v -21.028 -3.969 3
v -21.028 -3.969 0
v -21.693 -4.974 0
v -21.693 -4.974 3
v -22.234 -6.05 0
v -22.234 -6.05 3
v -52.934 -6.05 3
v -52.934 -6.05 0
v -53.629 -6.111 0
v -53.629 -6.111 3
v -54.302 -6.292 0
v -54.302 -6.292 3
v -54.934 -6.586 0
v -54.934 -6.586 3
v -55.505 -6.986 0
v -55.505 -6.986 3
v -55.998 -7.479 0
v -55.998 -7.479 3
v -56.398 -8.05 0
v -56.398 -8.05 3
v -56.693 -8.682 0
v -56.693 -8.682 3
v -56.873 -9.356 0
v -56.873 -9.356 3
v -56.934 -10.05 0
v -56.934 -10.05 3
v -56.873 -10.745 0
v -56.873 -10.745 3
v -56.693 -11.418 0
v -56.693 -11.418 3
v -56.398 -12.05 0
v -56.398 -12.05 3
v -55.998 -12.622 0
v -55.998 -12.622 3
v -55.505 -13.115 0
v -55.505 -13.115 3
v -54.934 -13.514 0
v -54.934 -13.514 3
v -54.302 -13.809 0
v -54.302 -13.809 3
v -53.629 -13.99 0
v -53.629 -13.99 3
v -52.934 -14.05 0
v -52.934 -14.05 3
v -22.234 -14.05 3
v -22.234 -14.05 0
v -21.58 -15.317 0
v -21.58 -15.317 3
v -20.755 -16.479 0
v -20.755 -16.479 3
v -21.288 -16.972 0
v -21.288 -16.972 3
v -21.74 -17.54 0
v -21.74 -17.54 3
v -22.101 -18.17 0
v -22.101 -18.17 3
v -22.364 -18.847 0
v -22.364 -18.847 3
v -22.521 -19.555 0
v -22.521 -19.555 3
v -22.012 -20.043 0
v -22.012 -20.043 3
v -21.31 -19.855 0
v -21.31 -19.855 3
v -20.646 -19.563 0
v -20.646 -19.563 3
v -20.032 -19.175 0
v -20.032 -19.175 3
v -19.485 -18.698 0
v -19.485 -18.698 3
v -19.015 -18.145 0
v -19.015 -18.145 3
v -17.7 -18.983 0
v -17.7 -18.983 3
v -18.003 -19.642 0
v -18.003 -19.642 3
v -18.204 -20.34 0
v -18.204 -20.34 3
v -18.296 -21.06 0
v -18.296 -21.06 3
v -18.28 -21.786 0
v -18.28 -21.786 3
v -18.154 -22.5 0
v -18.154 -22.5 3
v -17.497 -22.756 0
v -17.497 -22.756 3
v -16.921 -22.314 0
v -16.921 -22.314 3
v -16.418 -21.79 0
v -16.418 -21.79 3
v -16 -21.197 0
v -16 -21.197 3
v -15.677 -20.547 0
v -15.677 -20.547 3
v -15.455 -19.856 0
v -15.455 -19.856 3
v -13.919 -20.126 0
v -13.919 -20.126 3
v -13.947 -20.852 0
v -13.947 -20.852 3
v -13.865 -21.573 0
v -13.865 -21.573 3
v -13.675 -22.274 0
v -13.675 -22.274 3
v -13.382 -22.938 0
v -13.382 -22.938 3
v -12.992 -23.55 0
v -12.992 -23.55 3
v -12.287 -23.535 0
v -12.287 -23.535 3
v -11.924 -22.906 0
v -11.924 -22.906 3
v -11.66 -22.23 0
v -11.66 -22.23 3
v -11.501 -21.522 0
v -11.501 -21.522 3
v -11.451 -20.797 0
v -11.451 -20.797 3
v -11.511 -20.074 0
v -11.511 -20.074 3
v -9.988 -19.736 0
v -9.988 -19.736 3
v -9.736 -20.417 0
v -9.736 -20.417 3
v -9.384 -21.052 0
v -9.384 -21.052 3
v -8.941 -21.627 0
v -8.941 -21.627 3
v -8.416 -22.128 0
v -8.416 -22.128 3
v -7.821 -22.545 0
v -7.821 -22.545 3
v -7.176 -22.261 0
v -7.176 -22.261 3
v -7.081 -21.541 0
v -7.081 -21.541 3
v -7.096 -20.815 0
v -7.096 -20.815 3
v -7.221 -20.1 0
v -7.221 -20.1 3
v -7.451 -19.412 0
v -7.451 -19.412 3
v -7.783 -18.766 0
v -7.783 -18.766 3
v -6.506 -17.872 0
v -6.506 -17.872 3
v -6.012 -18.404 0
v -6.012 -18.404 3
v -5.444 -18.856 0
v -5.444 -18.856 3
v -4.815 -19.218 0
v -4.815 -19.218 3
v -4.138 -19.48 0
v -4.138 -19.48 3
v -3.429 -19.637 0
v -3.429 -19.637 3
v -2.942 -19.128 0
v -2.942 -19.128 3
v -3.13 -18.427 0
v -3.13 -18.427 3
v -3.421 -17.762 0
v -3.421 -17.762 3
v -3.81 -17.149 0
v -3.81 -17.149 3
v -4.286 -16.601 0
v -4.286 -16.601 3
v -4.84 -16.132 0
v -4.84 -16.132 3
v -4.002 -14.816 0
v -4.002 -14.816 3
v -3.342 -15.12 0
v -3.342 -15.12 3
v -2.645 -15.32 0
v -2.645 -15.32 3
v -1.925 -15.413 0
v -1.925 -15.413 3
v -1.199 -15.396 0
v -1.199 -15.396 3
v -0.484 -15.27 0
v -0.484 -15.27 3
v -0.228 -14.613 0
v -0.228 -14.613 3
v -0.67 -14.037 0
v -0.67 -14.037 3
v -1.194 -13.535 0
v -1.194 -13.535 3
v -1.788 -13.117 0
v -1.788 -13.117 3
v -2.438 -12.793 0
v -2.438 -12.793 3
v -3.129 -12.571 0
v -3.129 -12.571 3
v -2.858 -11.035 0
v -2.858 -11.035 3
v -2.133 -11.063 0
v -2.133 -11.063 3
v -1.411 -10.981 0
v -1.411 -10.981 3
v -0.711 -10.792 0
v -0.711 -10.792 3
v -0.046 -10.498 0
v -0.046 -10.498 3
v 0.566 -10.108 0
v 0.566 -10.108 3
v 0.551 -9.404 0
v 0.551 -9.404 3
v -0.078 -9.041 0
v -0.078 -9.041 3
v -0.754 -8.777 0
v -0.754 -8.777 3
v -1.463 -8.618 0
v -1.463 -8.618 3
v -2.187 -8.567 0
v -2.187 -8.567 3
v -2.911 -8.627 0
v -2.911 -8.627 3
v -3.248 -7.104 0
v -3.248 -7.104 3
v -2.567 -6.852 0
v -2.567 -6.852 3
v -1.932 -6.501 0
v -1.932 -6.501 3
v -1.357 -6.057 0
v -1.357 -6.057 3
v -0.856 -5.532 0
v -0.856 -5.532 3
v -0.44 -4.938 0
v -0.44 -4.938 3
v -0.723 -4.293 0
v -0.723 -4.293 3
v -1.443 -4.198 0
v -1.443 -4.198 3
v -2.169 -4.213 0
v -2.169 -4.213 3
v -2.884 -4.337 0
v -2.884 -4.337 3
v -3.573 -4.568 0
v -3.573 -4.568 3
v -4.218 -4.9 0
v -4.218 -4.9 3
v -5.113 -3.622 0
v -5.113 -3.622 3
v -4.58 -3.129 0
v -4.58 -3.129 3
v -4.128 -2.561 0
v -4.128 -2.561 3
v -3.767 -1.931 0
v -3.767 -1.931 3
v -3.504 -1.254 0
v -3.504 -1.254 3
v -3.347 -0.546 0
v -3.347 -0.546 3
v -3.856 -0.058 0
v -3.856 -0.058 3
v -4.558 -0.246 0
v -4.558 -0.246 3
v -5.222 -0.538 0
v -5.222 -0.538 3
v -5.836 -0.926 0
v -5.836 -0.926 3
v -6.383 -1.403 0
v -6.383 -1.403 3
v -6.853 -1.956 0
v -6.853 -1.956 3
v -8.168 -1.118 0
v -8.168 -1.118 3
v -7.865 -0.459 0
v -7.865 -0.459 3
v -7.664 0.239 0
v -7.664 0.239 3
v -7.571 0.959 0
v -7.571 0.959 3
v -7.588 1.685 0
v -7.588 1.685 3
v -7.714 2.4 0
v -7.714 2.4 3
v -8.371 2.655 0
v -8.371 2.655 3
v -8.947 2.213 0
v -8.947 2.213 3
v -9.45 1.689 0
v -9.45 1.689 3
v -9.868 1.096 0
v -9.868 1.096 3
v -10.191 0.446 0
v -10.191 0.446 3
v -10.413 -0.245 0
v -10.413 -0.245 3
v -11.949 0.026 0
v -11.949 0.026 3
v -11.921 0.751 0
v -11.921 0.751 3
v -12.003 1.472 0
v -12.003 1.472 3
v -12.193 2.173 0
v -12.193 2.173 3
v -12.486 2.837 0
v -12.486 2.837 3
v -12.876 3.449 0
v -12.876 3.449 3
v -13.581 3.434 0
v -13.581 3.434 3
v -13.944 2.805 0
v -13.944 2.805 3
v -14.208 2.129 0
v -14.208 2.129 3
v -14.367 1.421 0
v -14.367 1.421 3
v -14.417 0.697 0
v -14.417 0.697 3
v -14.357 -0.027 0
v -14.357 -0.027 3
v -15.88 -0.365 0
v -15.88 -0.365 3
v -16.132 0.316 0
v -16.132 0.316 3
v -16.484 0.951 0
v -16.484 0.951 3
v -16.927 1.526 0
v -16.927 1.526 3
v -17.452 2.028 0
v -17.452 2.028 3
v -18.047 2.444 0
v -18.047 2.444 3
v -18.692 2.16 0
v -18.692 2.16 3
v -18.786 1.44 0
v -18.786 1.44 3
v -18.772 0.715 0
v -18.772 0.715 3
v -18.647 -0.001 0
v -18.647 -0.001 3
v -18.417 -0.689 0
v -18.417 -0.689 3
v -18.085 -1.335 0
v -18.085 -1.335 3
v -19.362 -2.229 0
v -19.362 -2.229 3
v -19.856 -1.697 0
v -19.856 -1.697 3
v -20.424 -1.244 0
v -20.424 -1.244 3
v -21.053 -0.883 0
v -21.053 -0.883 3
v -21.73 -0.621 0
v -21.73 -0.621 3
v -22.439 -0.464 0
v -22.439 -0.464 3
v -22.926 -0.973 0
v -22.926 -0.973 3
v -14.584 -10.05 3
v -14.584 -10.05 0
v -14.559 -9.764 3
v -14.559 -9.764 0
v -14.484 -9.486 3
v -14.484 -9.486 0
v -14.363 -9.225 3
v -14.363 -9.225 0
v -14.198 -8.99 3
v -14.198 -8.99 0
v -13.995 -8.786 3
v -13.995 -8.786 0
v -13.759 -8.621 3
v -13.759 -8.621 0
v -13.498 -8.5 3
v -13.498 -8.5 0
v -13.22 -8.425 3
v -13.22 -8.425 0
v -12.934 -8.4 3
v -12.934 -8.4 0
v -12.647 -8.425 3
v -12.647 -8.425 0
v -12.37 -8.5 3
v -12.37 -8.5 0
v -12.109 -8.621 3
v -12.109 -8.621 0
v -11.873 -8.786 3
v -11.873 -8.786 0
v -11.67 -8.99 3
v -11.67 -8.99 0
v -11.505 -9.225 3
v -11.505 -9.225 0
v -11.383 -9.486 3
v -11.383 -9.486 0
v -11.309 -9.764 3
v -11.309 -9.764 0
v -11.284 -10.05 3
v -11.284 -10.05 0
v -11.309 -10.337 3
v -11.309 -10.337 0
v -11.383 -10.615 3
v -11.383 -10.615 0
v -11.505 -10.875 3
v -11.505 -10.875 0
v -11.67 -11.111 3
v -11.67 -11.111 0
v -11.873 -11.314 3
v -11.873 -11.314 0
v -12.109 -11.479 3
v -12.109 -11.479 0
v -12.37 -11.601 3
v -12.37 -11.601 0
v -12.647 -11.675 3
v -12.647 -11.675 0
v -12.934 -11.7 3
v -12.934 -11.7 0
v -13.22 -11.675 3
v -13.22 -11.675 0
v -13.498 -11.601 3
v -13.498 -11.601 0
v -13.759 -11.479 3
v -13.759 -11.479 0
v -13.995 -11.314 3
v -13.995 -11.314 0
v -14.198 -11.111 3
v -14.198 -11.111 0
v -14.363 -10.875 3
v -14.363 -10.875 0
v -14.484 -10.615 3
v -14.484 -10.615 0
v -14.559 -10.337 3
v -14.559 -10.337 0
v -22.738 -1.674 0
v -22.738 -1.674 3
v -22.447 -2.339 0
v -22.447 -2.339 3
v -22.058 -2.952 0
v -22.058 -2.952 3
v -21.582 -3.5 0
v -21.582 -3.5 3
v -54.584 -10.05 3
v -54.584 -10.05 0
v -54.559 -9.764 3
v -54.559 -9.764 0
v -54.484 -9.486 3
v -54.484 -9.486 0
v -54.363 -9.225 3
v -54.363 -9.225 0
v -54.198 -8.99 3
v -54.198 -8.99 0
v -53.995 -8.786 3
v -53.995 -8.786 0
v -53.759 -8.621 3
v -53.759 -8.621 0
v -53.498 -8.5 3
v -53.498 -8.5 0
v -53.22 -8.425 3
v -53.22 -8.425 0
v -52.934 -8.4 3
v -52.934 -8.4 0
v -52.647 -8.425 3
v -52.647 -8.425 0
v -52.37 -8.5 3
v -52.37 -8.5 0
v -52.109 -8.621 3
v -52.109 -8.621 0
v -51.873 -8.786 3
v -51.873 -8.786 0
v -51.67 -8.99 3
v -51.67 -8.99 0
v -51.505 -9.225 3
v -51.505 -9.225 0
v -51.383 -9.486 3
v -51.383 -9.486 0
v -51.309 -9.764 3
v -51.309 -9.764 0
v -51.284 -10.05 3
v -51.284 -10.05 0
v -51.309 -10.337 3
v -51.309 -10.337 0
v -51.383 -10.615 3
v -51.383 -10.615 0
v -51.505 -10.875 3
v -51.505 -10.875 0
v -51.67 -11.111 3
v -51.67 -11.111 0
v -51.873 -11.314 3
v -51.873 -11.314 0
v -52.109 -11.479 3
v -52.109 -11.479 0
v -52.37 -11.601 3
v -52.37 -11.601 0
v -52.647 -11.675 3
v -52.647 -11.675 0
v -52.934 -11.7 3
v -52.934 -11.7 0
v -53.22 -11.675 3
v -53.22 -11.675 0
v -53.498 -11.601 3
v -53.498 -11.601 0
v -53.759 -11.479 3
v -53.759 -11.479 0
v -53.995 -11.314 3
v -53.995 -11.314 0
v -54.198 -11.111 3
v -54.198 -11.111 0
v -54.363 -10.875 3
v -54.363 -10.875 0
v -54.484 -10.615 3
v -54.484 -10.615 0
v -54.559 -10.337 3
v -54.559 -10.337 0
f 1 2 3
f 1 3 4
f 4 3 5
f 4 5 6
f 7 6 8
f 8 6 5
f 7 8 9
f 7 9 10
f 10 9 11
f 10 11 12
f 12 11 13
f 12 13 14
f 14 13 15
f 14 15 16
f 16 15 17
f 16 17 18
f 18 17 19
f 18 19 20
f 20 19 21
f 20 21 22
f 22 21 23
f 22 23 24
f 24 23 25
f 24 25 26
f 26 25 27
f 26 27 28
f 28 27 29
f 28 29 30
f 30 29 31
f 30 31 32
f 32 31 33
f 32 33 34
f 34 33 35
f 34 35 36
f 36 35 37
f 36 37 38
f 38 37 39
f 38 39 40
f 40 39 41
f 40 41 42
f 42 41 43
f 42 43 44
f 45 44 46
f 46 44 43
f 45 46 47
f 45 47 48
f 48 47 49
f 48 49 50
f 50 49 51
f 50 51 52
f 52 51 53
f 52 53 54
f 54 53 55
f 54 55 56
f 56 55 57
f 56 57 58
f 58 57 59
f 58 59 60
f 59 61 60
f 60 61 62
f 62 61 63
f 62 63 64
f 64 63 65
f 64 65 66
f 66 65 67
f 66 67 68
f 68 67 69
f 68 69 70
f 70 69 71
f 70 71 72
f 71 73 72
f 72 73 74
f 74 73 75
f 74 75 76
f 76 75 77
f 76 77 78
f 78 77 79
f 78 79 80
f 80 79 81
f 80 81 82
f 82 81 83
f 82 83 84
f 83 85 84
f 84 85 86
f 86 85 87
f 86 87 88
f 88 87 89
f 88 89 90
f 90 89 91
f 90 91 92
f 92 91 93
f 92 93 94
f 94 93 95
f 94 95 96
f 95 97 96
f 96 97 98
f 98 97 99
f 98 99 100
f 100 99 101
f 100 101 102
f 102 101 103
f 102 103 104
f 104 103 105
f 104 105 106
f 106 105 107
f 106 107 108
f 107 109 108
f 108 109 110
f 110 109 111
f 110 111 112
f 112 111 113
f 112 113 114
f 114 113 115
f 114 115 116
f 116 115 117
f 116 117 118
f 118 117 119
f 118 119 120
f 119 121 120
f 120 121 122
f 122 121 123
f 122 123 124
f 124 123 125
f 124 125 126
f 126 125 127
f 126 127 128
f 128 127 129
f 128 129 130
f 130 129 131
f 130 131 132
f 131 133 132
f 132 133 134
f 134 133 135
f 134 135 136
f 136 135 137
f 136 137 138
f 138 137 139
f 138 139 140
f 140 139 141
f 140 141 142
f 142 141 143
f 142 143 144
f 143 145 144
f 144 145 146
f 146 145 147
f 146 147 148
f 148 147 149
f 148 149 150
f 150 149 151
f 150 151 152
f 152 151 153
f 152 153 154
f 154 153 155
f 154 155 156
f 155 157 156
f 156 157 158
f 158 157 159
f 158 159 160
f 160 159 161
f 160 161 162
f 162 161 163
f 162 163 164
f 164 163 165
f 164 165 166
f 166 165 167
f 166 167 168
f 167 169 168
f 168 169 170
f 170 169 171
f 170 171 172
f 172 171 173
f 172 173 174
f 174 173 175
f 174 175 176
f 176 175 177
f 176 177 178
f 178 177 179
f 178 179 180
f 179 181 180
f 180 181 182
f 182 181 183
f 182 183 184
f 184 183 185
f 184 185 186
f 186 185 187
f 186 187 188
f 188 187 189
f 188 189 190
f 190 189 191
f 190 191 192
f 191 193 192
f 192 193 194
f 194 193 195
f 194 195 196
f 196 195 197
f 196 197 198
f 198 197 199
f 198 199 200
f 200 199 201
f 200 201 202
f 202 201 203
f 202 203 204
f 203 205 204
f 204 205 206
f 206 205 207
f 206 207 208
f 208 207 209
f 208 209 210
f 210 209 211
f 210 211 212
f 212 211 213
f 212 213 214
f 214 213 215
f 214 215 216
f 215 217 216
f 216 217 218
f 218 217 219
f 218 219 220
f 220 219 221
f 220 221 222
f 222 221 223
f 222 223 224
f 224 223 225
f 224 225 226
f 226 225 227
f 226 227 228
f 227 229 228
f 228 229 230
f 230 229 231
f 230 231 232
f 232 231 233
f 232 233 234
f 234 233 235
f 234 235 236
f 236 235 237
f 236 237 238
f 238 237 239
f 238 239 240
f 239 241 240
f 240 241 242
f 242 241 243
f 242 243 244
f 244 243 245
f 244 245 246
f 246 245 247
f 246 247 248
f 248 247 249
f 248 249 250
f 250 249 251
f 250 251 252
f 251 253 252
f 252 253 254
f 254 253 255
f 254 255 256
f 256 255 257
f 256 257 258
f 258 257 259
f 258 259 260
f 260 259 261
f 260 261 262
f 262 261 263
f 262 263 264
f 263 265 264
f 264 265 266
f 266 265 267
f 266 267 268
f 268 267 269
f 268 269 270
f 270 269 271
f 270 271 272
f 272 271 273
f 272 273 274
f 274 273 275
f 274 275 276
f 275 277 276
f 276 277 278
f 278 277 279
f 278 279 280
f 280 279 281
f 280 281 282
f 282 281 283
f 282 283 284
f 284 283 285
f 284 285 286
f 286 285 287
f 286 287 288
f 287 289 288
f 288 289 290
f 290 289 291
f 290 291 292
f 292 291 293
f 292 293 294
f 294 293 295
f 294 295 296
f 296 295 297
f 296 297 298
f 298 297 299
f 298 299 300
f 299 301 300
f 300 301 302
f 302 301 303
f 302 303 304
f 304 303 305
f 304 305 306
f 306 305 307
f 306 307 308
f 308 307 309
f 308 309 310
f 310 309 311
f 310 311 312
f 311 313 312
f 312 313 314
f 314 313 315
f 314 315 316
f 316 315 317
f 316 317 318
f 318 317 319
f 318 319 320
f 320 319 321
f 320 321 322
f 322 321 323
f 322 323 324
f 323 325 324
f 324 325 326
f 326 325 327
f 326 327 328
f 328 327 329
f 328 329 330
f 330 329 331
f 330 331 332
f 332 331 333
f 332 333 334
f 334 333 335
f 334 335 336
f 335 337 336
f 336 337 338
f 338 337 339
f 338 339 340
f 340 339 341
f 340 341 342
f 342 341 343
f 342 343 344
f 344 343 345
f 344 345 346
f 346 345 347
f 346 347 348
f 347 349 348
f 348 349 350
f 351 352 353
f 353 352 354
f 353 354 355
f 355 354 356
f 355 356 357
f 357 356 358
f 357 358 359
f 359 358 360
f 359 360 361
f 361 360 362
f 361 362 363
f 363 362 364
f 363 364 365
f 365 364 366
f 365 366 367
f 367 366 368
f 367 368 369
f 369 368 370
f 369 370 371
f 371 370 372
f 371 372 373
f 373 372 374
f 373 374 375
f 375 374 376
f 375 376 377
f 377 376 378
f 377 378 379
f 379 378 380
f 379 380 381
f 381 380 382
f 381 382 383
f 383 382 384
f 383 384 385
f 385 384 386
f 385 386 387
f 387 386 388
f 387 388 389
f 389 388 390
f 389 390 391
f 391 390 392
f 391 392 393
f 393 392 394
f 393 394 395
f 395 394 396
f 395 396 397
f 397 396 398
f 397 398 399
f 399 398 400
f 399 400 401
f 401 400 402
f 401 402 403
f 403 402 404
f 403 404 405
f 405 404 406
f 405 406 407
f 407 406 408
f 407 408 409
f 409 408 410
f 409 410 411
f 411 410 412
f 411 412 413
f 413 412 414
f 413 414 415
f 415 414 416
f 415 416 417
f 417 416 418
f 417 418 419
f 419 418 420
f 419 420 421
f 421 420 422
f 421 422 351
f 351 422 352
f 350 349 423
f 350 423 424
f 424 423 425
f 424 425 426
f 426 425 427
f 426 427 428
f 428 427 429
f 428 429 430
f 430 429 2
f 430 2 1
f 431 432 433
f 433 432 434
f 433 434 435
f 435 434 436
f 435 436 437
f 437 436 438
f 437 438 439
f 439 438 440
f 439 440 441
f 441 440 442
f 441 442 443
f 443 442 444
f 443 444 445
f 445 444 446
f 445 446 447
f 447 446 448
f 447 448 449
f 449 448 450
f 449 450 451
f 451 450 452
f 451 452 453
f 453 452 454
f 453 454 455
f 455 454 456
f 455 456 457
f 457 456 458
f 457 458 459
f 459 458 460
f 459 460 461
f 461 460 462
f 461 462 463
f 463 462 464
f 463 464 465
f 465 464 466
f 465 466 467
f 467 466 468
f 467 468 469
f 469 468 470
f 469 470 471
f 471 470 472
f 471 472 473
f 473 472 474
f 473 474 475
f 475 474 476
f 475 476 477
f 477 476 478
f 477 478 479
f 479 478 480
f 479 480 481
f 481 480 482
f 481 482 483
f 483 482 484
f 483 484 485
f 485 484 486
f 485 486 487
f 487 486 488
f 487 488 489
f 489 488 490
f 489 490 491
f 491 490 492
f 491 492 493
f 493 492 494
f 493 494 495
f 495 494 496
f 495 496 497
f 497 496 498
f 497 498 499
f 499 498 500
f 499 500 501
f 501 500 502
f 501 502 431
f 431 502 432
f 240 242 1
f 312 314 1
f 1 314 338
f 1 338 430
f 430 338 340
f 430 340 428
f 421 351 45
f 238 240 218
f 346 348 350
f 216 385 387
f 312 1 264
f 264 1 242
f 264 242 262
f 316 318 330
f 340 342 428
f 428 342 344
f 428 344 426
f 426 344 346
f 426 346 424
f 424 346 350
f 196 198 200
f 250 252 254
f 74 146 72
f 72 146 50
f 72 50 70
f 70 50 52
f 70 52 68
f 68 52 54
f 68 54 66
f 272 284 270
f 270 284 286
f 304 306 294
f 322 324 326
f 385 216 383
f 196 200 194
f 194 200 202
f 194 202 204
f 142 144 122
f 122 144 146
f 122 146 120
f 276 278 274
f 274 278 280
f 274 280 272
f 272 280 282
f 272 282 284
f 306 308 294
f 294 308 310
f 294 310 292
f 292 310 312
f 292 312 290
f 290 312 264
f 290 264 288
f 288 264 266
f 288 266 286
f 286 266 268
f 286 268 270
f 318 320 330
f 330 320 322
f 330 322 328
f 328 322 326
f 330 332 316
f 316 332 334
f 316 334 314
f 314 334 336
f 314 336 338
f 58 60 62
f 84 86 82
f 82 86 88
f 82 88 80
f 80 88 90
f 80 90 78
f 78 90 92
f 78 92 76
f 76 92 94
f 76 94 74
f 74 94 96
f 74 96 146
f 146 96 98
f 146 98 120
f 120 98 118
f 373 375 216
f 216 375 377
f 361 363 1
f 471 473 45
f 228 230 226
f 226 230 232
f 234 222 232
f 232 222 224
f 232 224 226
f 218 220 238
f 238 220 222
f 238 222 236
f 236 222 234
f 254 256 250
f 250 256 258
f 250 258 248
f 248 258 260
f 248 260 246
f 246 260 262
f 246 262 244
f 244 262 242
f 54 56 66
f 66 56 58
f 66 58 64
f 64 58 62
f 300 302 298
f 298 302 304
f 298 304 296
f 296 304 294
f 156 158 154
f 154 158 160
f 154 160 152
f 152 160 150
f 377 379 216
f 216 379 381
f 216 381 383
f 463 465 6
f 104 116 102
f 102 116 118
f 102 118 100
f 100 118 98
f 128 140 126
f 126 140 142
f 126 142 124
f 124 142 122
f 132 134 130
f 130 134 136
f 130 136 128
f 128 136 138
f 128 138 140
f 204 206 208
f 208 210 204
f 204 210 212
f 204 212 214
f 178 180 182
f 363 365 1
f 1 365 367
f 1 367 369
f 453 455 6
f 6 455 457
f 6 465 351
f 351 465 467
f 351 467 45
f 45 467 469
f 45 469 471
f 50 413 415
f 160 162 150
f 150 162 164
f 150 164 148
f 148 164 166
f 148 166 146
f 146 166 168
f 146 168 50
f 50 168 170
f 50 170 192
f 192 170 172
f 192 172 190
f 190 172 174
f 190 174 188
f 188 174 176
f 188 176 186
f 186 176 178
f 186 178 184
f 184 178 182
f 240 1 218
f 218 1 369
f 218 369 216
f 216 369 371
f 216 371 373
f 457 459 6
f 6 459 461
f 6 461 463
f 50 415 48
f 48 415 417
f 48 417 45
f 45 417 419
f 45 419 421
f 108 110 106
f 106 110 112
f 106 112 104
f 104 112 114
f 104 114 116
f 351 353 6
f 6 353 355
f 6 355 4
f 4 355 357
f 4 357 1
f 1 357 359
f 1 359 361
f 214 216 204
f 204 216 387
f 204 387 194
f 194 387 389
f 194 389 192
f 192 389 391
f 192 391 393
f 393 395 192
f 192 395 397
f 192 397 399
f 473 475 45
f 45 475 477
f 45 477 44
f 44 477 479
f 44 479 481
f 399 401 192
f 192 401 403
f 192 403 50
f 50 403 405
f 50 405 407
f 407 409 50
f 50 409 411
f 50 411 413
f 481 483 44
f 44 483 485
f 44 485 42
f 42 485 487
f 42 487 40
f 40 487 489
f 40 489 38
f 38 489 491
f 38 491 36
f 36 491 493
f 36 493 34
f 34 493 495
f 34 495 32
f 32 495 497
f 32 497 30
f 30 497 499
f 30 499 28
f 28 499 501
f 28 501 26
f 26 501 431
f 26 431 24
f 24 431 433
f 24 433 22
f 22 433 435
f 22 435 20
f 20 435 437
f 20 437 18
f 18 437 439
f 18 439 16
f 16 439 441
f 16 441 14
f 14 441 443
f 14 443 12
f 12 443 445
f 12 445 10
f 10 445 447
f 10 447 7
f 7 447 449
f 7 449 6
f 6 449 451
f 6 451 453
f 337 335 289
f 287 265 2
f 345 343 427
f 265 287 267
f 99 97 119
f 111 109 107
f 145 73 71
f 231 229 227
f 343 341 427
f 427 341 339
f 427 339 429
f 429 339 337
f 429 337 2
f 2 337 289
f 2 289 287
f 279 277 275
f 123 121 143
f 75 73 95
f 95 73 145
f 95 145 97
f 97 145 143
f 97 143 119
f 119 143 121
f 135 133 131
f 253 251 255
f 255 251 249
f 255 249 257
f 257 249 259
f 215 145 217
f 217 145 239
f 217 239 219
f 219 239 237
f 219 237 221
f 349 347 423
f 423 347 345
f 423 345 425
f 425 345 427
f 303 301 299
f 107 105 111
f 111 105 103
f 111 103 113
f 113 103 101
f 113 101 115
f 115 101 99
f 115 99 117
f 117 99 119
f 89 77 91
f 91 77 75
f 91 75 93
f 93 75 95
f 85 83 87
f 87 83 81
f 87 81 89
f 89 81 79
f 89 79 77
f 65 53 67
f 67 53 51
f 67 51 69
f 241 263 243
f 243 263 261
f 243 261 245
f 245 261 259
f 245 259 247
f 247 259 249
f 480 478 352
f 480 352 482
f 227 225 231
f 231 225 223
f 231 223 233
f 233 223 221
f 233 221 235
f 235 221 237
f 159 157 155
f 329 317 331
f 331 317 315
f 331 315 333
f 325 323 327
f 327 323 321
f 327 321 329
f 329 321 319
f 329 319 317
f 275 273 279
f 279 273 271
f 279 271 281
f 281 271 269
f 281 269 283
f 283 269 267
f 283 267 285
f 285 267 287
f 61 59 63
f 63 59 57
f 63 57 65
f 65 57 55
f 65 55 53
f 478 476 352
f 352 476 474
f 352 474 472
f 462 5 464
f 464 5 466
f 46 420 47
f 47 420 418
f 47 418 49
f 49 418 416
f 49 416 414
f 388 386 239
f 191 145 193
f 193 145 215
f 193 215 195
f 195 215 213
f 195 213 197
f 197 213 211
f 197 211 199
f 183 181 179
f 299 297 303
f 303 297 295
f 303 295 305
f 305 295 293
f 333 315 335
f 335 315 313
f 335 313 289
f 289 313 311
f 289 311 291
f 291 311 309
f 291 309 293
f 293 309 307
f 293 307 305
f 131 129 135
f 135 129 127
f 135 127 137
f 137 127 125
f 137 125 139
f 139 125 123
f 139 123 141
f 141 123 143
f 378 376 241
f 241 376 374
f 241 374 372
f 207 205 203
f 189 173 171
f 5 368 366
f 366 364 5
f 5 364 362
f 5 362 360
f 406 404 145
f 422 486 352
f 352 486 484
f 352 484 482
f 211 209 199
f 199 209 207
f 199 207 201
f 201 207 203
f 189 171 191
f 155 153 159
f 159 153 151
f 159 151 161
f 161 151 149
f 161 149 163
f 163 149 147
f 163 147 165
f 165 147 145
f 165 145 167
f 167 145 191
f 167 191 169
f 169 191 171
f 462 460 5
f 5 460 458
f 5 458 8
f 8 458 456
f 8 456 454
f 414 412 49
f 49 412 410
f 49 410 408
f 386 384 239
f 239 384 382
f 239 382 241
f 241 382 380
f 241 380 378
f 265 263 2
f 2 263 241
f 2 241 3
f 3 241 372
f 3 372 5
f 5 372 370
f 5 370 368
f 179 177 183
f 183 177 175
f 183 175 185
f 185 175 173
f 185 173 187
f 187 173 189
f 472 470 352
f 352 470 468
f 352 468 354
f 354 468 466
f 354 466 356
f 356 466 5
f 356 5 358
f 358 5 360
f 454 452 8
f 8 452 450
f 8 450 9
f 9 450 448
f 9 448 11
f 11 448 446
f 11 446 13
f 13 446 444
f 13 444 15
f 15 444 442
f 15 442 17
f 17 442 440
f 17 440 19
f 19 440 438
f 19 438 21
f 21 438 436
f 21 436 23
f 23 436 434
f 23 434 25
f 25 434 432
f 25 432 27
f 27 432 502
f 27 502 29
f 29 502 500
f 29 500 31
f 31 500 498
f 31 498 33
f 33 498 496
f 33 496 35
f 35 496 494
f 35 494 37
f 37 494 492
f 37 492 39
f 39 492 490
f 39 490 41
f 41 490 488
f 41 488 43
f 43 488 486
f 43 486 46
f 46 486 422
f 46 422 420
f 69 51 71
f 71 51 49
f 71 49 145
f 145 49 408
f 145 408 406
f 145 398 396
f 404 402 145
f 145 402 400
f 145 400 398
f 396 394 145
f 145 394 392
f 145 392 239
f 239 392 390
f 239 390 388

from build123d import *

# Parameters (mm, degrees)
SKETCH1_R           = 1.65
BOSS_EXTRUDE1_DEPTH = 3


with BuildPart() as part:
    # Sketch1 → Boss-Extrude1 (new body)
    with BuildSketch(Plane.XY):
        with BuildLine():
            ThreePointArc((-20.755142163, -16.478801884), (-21.932583818, -17.847935828), (-22.52081897, -19.555236625))
            ThreePointArc((-22.52081897, -19.555236625), (-22.269390429, -19.802297923), (-22.01159712, -20.042710497))
            ThreePointArc((-22.01159712, -20.042710497), (-20.331579752, -19.3805638), (-19.015108204, -18.144522024))
            ThreePointArc((-19.015108204, -18.144522024), (-18.373585411, -18.588879433), (-17.699741584, -18.98250298))
            ThreePointArc((-17.699741584, -18.98250298), (-18.263610953, -20.698005222), (-18.153713641, -22.500453331))
            ThreePointArc((-18.153713641, -22.500453331), (-17.826877693, -22.63249067), (-17.496705822, -22.755949699))
            ThreePointArc((-17.496705822, -22.755949699), (-16.197964732, -21.501291105), (-15.454716323, -19.855545556))
            ThreePointArc((-15.454716323, -19.855545556), (-14.691978327, -20.020578127), (-13.918794597, -20.126369997))
            ThreePointArc((-13.918794597, -20.126369997), (-13.78324768, -21.927070872), (-12.991948773, -23.550259908))
            ThreePointArc((-12.991948773, -23.550259908), (-12.639463228, -23.547171801), (-12.287178469, -23.534881765))
            ThreePointArc((-12.287178469, -23.534881765), (-11.567435216, -21.878721672), (-11.510562778, -20.073822192))
            ThreePointArc((-11.510562778, -20.073822192), (-10.742729525, -19.934405211), (-9.987916106, -19.736259551))
            ThreePointArc((-9.987916106, -19.736259551), (-9.173588692, -21.348018674), (-7.821356276, -22.544832821))
            ThreePointArc((-7.821356276, -22.544832821), (-7.496883863, -22.407089403), (-7.176118378, -22.260921351))
            ThreePointArc((-7.176118378, -22.260921351), (-7.144947346, -20.455395119), (-7.783109193, -18.766121291))
            ThreePointArc((-7.783109193, -18.766121291), (-7.127076334, -18.343479732), (-6.505546727, -17.871562422))
            ThreePointArc((-6.505546727, -17.871562422), (-5.136412783, -19.049004077), (-3.429111986, -19.637239229))
            ThreePointArc((-3.429111986, -19.637239229), (-3.182050688, -19.385810688), (-2.941638114, -19.128017379))
            ThreePointArc((-2.941638114, -19.128017379), (-3.603784812, -17.448000011), (-4.839826587, -16.131528463))
            ThreePointArc((-4.839826587, -16.131528463), (-4.395469179, -15.49000567), (-4.001845631, -14.816161843))
            ThreePointArc((-4.001845631, -14.816161843), (-2.286343389, -15.380031212), (-0.48389528, -15.2701339))
            ThreePointArc((-0.48389528, -15.2701339), (-0.351857941, -14.943297952), (-0.228398912, -14.613126081))
            ThreePointArc((-0.228398912, -14.613126081), (-1.483057507, -13.314384991), (-3.128803055, -12.571136582))
            ThreePointArc((-3.128803055, -12.571136582), (-2.963770485, -11.808398586), (-2.857978614, -11.035214856))
            ThreePointArc((-2.857978614, -11.035214856), (-1.05727774, -10.899667939), (0.565911297, -10.108369033))
            ThreePointArc((0.565911297, -10.108369033), (0.56282319, -9.755883487), (0.550533154, -9.403598729))
            ThreePointArc((0.550533154, -9.403598729), (-1.105626939, -8.683855475), (-2.910526419, -8.626983037))
            ThreePointArc((-2.910526419, -8.626983037), (-3.0499434, -7.859149784), (-3.24808906, -7.104336365))
            ThreePointArc((-3.24808906, -7.104336365), (-1.636329937, -6.290008951), (-0.43951579, -4.937776535))
            ThreePointArc((-0.43951579, -4.937776535), (-0.577259208, -4.613304122), (-0.723427261, -4.292538637))
            ThreePointArc((-0.723427261, -4.292538637), (-2.528953492, -4.261367605), (-4.21822732, -4.899529452))
            ThreePointArc((-4.21822732, -4.899529452), (-4.64086888, -4.243496594), (-5.112786189, -3.621966986))
            ThreePointArc((-5.112786189, -3.621966986), (-3.935344534, -2.252833042), (-3.347109382, -0.545532245))
            ThreePointArc((-3.347109382, -0.545532245), (-3.598537923, -0.298470947), (-3.856331232, -0.058058373))
            ThreePointArc((-3.856331232, -0.058058373), (-5.5363486, -0.720205071), (-6.852820148, -1.956246846))
            ThreePointArc((-6.852820148, -1.956246846), (-7.494342941, -1.511889438), (-8.168186768, -1.11826589))
            ThreePointArc((-8.168186768, -1.11826589), (-7.604317399, 0.597236351), (-7.714214711, 2.399684461))
            ThreePointArc((-7.714214711, 2.399684461), (-8.041050659, 2.5317218), (-8.37122253, 2.655180829))
            ThreePointArc((-8.37122253, 2.655180829), (-9.66996362, 1.400522234), (-10.413212029, -0.245223314))
            ThreePointArc((-10.413212029, -0.245223314), (-11.175950025, -0.080190744), (-11.949133755, 0.025601127))
            ThreePointArc((-11.949133755, 0.025601127), (-12.084680673, 1.826302001), (-12.875979579, 3.449491038))
            ThreePointArc((-12.875979579, 3.449491038), (-13.228465124, 3.44640293), (-13.580749883, 3.434112895))
            ThreePointArc((-13.580749883, 3.434112895), (-14.300493136, 1.777952801), (-14.357365574, -0.026946679))
            ThreePointArc((-14.357365574, -0.026946679), (-15.125198828, -0.166363659), (-15.880012246, -0.364509319))
            ThreePointArc((-15.880012246, -0.364509319), (-16.69433966, 1.247249804), (-18.046572076, 2.444063951))
            ThreePointArc((-18.046572076, 2.444063951), (-18.371044489, 2.306320533), (-18.691809974, 2.16015248))
            ThreePointArc((-18.691809974, 2.16015248), (-18.722981006, 0.354626248), (-18.084819159, -1.334647579))
            ThreePointArc((-18.084819159, -1.334647579), (-18.740852018, -1.757289139), (-19.362381625, -2.229206448))
            ThreePointArc((-19.362381625, -2.229206448), (-20.731515569, -1.051764793), (-22.438816366, -0.463529641))
            ThreePointArc((-22.438816366, -0.463529641), (-22.685877664, -0.714958182), (-22.926290238, -0.972751491))
            ThreePointArc((-22.926290238, -0.972751491), (-22.264143541, -2.652768859), (-21.028101765, -3.969240407))
            ThreePointArc((-21.028101765, -3.969240407), (-21.69320555, -4.973863328), (-22.234253204, -6.050384435))
            Line((-22.234253204, -6.050384435), (-52.933964176, -6.050384435))
            ThreePointArc((-52.933964176, -6.050384435), (-56.933964176, -10.050384435), (-52.933964176, -14.050384435))
            Line((-52.933964176, -14.050384435), (-22.234253204, -14.050384435))
            ThreePointArc((-22.234253204, -14.050384435), (-21.580377364, -15.316779311), (-20.755142163, -16.478801884))
        make_face()
        with Locations((-12.933964176, -10.050384435)):
            Circle(SKETCH1_R, mode=Mode.SUBTRACT)
        with Locations((-52.933964176, -10.050384435)):
            Circle(SKETCH1_R, mode=Mode.SUBTRACT)
    extrude(amount=BOSS_EXTRUDE1_DEPTH)


solid = part.part
